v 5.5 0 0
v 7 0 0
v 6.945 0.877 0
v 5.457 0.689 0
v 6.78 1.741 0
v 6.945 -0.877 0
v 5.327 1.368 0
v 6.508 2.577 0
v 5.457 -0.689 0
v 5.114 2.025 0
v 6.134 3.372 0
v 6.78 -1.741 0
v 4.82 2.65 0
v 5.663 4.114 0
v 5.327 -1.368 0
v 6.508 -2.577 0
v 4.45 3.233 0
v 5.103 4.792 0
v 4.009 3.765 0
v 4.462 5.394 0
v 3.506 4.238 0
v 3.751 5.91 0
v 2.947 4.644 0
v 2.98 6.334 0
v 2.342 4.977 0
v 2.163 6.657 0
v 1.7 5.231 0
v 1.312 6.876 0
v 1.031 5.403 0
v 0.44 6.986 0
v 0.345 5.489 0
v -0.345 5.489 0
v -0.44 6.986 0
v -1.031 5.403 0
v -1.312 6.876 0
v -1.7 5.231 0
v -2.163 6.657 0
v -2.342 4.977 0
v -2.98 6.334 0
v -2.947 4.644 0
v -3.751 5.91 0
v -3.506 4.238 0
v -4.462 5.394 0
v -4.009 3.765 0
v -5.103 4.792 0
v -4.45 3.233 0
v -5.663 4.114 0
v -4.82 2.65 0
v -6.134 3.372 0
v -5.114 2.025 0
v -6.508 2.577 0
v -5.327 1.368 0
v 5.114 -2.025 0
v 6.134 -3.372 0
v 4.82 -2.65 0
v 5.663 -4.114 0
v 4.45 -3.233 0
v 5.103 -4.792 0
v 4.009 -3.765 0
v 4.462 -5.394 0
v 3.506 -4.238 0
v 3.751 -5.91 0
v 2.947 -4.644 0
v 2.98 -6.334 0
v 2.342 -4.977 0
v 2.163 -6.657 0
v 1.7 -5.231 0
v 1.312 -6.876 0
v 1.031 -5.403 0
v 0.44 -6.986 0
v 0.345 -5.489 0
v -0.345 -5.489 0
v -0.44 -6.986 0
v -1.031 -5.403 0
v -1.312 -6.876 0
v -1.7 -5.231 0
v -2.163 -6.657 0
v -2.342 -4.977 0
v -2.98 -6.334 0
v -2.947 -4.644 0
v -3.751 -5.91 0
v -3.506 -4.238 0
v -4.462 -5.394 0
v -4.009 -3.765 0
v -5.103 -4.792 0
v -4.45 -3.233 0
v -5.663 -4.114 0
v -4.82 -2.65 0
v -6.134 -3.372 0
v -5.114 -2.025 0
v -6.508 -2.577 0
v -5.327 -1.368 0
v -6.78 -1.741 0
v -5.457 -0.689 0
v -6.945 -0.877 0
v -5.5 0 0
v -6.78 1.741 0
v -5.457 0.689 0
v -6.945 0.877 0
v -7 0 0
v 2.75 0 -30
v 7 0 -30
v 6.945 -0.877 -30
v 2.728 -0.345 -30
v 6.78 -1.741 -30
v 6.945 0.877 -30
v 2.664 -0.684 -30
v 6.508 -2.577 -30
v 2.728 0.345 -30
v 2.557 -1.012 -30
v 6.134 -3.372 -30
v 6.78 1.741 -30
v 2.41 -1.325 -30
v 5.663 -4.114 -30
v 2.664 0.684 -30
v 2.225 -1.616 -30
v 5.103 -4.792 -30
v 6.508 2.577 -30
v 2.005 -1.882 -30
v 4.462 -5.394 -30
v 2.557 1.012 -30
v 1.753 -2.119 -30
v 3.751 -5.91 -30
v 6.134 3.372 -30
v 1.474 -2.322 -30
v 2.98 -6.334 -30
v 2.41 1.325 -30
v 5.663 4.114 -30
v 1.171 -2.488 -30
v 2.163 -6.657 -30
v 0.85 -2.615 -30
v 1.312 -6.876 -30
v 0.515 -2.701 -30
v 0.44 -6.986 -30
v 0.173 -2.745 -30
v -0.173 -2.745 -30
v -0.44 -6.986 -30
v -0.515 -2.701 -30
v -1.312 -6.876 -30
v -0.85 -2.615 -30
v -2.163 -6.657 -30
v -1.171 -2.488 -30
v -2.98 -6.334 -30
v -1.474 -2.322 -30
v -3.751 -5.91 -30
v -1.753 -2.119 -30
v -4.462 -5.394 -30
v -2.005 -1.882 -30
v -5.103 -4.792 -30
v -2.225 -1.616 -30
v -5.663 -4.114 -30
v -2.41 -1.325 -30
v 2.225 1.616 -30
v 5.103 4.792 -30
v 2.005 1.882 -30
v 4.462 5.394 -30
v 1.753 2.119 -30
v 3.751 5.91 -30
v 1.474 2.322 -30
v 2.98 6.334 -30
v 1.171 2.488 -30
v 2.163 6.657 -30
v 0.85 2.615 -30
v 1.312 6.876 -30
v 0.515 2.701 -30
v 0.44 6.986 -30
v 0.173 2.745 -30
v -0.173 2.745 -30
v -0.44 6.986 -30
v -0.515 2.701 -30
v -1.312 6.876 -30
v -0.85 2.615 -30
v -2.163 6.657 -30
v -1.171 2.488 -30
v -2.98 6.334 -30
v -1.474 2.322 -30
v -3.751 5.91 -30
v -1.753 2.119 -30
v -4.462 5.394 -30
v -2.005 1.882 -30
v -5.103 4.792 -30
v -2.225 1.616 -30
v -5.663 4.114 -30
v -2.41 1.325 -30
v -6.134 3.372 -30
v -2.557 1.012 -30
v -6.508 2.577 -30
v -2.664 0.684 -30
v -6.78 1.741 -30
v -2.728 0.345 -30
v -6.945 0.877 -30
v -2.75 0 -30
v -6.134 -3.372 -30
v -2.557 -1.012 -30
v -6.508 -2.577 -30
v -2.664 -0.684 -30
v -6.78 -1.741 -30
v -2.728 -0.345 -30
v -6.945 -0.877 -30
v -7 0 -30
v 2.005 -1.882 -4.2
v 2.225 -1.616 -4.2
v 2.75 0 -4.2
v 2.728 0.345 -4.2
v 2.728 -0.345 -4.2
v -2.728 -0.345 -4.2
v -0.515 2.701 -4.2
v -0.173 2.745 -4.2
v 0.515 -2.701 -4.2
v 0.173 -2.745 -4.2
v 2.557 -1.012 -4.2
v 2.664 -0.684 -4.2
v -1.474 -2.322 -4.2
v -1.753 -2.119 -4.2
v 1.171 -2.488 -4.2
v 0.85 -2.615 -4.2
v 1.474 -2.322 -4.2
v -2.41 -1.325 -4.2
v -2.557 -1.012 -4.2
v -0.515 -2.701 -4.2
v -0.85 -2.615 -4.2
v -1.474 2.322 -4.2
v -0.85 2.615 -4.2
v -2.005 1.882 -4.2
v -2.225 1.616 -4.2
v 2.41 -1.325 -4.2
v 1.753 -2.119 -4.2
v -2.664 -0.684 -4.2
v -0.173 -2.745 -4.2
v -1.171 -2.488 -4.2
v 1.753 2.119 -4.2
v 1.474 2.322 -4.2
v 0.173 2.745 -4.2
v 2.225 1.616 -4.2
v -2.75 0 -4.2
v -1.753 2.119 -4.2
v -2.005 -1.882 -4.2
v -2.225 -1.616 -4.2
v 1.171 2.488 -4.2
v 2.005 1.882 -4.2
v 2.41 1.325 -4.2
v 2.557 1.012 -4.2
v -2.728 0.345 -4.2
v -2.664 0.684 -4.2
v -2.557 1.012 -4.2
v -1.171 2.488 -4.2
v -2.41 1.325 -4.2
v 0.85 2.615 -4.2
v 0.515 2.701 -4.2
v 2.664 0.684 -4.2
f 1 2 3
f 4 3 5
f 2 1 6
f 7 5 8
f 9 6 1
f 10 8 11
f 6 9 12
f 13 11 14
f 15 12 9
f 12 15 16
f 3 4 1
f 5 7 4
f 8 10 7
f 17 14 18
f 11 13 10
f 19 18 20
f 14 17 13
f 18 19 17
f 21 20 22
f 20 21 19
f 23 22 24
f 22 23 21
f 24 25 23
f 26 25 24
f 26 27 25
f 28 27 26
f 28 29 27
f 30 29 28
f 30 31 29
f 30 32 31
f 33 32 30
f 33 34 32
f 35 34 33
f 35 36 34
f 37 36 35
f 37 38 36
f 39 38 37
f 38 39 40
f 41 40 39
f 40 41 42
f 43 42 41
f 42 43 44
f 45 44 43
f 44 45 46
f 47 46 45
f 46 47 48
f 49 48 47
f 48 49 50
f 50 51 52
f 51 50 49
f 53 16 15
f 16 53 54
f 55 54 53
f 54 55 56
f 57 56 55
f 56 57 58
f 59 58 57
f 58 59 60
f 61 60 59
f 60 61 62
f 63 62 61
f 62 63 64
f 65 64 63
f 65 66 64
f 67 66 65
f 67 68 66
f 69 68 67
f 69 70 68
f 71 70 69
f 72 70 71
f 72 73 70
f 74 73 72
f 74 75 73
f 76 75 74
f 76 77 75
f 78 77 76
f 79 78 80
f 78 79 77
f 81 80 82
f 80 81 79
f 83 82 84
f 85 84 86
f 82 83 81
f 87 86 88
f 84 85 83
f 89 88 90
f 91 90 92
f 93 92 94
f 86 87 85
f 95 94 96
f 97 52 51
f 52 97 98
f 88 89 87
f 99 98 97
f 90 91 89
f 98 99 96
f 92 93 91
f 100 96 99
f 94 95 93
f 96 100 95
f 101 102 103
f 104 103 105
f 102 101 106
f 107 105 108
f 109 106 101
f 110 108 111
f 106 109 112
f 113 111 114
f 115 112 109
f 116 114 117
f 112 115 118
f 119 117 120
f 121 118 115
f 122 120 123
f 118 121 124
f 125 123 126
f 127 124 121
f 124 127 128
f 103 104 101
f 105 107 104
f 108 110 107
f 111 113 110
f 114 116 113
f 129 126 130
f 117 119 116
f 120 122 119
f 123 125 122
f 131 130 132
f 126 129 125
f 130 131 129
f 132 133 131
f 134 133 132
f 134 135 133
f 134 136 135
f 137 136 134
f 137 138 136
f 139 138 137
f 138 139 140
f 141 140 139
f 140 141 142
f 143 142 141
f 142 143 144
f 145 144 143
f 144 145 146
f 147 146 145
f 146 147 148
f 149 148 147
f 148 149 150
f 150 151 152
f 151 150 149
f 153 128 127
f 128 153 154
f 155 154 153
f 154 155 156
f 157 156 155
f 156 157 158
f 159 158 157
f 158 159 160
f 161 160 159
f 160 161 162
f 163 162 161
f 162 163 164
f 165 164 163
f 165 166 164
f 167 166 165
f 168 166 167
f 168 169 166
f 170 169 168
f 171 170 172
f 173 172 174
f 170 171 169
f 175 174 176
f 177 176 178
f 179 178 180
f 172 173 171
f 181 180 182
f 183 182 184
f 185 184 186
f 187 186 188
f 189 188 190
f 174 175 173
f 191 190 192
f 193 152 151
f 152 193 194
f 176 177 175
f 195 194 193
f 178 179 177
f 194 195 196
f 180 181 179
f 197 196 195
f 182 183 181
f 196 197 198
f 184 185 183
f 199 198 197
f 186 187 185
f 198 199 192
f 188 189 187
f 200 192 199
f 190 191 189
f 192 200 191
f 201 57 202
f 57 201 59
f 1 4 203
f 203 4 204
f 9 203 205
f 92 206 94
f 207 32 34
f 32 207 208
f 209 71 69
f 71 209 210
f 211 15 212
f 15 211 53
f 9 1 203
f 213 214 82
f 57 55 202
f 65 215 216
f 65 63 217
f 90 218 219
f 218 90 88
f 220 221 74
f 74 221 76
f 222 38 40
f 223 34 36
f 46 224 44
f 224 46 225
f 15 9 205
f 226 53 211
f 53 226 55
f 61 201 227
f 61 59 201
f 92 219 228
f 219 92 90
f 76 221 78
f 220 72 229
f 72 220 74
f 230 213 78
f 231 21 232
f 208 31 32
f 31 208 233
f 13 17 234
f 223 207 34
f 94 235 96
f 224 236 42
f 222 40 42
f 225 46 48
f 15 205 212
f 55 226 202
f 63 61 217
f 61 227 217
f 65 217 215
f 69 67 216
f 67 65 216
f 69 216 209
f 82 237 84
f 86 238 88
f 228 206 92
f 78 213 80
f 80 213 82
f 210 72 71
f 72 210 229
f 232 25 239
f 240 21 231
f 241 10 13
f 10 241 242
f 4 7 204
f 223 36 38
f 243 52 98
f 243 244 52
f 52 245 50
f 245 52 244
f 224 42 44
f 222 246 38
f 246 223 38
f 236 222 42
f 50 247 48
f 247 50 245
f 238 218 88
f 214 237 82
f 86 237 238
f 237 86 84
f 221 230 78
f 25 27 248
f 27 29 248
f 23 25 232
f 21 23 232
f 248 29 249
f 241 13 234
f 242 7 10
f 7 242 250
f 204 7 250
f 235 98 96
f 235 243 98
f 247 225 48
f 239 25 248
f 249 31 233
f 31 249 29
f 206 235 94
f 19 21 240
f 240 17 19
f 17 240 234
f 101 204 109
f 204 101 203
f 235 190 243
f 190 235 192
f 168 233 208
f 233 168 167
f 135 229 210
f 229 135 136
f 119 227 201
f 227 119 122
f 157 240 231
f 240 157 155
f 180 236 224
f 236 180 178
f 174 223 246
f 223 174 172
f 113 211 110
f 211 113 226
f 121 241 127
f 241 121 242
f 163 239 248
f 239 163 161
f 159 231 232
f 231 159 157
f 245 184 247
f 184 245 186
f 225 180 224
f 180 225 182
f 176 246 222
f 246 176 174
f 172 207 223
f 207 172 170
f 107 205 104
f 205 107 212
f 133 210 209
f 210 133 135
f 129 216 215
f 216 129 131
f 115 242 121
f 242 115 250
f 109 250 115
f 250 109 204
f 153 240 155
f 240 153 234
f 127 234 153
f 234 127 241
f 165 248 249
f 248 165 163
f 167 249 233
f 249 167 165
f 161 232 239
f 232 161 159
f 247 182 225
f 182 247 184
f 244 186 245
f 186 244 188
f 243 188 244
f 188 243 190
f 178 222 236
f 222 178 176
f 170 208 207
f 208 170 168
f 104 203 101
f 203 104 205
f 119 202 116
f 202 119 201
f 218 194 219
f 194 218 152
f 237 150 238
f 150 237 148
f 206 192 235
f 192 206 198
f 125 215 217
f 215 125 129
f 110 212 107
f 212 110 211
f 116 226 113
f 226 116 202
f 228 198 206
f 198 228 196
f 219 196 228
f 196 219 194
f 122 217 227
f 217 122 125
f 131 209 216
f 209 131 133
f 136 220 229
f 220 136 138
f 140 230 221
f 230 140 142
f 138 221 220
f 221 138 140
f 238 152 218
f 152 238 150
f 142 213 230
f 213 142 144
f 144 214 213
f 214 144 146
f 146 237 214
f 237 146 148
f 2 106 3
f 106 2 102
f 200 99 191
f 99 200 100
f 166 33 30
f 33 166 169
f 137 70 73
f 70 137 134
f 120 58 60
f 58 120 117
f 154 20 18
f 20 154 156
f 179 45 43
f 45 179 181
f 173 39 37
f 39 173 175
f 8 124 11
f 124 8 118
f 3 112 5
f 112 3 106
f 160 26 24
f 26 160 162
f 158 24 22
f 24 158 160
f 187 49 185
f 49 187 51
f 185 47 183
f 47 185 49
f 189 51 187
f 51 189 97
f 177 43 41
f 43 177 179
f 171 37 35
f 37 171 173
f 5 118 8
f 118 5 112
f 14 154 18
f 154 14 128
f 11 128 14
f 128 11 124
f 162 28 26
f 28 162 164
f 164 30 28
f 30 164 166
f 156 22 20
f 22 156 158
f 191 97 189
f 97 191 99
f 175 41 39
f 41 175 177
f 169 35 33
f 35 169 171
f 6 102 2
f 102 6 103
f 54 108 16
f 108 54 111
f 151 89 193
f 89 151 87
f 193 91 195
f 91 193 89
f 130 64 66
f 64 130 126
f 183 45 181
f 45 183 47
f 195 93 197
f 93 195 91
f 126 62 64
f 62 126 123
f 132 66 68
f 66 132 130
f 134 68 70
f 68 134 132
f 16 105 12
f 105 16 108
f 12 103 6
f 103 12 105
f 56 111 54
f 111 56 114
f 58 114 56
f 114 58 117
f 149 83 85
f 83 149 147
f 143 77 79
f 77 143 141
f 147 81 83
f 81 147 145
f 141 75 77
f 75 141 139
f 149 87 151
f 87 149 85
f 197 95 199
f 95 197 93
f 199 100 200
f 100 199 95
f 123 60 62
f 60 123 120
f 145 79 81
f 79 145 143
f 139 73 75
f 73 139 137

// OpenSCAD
$fn = 50;


difference() {
	union() {
		translate(v = [0, 0, -30.0000000000]) {
			cylinder(h = 30, r = 7.0000000000);
		}
		cylinder(h = 0, r = 10.0000000000);
	}
	union() {
		translate(v = [0, 0, 0]) {
			rotate(a = [0, 0, 0]) {
				difference() {
					union() {
						#translate(v = [0, 0, -30.0000000000]) {
							cylinder(h = 30, r = 2.2500000000);
						}
						#translate(v = [0, 0, -4.2000000000]) {
							cylinder(h = 4.2000000000, r1 = 2.7500000000, r2 = 5.5000000000);
						}
						#translate(v = [0, 0, -30.0000000000]) {
							cylinder(h = 30, r = 2.7500000000);
						}
						#translate(v = [0, 0, -30.0000000000]) {
							cylinder(h = 30, r = 2.2500000000);
						}
					}
					union();
				}
			}
		}
	}
}
